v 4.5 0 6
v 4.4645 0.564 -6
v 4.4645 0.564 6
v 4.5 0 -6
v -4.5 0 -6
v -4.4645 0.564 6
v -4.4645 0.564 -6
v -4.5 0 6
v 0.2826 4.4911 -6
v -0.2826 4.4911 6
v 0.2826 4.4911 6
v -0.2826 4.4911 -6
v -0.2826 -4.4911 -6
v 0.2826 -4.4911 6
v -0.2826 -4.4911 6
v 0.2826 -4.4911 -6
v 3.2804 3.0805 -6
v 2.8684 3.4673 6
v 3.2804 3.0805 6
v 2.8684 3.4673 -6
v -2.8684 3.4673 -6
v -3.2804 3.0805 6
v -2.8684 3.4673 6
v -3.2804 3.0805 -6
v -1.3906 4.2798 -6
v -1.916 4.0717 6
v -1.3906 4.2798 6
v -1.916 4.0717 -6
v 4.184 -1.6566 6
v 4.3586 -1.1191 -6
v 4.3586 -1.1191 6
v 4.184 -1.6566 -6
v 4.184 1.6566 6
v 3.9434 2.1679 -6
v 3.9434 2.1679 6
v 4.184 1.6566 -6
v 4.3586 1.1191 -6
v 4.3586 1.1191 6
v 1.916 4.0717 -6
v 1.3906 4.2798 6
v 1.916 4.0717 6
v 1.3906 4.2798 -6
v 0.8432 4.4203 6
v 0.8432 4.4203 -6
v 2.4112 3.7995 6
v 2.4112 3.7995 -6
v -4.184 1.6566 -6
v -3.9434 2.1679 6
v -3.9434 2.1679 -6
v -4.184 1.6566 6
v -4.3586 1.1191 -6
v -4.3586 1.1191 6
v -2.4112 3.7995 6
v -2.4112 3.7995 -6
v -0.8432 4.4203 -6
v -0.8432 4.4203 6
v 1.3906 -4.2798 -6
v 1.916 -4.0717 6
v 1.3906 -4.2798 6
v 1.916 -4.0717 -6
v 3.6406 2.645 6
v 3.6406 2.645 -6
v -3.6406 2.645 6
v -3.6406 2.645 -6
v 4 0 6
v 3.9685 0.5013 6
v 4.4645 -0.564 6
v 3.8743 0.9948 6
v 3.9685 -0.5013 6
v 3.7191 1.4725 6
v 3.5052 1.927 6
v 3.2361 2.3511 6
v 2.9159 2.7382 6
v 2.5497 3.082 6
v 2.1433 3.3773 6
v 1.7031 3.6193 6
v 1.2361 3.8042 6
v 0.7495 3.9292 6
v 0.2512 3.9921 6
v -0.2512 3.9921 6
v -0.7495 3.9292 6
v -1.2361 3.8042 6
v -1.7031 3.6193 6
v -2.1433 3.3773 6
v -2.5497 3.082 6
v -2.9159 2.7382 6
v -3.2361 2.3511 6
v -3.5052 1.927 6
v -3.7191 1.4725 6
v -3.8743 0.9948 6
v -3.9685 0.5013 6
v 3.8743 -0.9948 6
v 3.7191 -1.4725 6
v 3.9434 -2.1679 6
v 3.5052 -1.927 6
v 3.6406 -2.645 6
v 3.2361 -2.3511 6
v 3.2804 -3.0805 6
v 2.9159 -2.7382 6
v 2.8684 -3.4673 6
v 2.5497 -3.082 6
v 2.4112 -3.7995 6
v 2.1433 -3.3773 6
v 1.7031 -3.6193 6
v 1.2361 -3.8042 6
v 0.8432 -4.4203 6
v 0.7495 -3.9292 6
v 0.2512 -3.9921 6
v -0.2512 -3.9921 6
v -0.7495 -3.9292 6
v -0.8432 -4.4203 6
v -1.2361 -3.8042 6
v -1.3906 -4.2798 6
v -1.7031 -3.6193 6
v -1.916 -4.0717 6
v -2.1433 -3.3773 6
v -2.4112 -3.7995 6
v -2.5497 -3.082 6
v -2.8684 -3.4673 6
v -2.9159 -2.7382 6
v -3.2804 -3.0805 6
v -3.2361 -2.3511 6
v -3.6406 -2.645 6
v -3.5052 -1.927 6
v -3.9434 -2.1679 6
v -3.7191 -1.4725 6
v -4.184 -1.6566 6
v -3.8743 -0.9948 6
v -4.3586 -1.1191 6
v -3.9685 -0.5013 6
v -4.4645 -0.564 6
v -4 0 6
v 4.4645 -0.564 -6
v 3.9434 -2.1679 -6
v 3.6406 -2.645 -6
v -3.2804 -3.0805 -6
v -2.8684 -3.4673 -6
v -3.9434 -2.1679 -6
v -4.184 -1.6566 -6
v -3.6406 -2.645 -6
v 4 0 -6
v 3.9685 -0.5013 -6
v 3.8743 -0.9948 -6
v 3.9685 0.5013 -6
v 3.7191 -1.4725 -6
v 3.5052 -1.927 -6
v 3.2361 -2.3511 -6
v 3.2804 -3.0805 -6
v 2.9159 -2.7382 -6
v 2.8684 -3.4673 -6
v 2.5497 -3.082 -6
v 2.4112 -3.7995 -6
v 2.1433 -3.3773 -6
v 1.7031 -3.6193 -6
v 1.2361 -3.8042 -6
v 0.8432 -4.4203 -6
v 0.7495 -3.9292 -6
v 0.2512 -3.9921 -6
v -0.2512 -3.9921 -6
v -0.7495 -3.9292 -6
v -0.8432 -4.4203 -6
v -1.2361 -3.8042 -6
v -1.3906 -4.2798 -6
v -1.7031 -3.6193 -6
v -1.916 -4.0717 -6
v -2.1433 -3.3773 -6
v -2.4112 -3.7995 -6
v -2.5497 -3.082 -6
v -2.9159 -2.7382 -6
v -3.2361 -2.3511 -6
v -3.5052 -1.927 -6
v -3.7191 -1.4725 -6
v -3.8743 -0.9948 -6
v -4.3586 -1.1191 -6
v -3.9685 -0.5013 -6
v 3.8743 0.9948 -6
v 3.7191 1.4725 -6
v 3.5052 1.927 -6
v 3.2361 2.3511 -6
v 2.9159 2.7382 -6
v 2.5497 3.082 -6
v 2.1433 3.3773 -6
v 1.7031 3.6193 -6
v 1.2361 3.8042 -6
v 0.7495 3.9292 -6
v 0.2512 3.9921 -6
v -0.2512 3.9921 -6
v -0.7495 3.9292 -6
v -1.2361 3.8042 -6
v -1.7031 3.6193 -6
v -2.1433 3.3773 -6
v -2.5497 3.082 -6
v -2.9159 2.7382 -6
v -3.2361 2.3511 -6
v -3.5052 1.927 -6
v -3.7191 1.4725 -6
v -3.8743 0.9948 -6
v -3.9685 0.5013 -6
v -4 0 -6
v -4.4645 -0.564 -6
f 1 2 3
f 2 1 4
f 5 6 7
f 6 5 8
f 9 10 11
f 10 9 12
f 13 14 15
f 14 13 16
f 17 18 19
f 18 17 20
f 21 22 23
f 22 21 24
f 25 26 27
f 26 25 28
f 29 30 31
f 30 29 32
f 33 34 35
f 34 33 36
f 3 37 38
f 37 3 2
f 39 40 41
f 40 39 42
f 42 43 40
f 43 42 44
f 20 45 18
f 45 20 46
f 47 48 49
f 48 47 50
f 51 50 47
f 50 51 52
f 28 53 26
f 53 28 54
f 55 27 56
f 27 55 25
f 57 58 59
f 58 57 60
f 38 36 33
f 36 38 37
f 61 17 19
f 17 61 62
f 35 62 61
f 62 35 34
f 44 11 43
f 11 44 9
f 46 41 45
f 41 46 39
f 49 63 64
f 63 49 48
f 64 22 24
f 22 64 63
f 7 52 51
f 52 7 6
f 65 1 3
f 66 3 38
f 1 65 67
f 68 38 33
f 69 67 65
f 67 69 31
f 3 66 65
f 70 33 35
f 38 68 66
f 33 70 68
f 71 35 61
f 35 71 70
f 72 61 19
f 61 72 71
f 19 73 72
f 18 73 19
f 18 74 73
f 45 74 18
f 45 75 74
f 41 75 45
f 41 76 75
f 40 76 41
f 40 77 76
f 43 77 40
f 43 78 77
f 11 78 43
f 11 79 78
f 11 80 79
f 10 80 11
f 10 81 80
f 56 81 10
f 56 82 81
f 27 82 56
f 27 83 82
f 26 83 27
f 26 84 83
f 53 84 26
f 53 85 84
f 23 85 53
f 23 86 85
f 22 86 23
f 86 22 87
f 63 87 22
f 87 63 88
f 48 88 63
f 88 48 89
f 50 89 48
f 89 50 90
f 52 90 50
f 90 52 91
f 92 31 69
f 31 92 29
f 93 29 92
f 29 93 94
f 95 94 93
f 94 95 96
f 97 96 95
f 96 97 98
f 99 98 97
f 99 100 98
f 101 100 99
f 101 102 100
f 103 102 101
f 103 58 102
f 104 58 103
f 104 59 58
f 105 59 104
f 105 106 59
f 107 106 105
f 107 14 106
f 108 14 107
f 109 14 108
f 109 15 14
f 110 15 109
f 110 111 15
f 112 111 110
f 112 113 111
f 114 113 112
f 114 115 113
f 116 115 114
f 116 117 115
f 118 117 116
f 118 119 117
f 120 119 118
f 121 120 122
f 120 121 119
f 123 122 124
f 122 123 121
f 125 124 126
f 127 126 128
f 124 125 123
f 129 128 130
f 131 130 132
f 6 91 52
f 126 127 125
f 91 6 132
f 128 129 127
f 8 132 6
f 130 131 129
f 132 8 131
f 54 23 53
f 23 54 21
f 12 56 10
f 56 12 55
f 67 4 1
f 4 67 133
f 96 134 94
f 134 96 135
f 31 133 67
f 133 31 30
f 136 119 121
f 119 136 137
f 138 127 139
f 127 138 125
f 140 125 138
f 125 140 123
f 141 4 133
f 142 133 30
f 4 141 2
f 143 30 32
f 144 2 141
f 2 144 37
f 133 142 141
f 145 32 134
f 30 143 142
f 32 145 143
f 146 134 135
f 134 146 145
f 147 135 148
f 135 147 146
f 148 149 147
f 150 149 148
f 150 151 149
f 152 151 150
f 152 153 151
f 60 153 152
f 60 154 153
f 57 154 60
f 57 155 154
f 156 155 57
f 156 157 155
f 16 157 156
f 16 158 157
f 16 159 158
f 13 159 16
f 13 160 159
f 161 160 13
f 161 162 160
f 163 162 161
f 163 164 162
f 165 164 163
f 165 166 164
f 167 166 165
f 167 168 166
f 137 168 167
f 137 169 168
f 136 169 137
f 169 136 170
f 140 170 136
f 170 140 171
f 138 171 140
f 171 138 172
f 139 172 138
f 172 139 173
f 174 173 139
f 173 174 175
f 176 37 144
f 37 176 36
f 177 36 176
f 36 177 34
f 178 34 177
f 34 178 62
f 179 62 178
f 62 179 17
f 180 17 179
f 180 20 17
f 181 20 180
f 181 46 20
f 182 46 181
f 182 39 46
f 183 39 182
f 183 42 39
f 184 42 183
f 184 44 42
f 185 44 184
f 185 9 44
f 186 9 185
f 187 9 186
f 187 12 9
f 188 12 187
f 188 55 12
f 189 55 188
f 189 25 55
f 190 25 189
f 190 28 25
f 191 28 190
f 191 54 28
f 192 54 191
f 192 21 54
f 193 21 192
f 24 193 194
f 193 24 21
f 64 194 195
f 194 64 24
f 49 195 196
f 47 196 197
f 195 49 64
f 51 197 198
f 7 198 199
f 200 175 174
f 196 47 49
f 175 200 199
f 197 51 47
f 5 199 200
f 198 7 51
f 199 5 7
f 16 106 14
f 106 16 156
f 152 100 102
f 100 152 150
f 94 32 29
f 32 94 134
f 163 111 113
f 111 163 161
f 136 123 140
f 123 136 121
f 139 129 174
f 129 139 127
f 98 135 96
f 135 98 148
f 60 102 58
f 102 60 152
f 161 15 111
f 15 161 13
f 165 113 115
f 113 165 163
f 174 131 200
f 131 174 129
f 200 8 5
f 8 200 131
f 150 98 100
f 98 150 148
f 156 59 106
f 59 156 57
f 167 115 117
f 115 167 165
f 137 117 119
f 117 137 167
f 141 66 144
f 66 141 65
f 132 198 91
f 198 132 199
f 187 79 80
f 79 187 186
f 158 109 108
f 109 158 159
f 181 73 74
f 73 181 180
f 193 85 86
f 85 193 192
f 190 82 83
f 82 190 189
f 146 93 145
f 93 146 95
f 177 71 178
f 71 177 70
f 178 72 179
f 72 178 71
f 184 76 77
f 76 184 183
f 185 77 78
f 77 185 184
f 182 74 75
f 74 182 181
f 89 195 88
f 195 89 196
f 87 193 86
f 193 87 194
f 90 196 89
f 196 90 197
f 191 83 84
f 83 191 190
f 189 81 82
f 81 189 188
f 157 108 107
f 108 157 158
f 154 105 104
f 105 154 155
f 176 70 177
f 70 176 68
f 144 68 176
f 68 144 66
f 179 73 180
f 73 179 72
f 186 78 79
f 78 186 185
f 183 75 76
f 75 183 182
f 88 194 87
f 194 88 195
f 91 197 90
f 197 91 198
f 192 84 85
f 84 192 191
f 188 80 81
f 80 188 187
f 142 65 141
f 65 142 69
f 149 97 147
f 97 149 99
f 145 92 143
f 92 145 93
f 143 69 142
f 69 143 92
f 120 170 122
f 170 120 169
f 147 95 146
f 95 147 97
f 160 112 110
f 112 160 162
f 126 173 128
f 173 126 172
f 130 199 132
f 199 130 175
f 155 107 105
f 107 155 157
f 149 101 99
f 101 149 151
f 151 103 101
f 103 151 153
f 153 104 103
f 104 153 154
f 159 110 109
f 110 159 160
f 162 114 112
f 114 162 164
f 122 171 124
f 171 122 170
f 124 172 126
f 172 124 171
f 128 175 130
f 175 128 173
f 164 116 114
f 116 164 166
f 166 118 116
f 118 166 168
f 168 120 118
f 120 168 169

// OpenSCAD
$fn = 50;


difference() {
	union() {
		translate(v = [0, 0, -6.0000000000]) {
			cylinder(h = 12, r = 4.5000000000);
		}
	}
	union() {
		translate(v = [0, 0, -100.0000000000]) {
			cylinder(h = 200, r = 4);
		}
	}
}
